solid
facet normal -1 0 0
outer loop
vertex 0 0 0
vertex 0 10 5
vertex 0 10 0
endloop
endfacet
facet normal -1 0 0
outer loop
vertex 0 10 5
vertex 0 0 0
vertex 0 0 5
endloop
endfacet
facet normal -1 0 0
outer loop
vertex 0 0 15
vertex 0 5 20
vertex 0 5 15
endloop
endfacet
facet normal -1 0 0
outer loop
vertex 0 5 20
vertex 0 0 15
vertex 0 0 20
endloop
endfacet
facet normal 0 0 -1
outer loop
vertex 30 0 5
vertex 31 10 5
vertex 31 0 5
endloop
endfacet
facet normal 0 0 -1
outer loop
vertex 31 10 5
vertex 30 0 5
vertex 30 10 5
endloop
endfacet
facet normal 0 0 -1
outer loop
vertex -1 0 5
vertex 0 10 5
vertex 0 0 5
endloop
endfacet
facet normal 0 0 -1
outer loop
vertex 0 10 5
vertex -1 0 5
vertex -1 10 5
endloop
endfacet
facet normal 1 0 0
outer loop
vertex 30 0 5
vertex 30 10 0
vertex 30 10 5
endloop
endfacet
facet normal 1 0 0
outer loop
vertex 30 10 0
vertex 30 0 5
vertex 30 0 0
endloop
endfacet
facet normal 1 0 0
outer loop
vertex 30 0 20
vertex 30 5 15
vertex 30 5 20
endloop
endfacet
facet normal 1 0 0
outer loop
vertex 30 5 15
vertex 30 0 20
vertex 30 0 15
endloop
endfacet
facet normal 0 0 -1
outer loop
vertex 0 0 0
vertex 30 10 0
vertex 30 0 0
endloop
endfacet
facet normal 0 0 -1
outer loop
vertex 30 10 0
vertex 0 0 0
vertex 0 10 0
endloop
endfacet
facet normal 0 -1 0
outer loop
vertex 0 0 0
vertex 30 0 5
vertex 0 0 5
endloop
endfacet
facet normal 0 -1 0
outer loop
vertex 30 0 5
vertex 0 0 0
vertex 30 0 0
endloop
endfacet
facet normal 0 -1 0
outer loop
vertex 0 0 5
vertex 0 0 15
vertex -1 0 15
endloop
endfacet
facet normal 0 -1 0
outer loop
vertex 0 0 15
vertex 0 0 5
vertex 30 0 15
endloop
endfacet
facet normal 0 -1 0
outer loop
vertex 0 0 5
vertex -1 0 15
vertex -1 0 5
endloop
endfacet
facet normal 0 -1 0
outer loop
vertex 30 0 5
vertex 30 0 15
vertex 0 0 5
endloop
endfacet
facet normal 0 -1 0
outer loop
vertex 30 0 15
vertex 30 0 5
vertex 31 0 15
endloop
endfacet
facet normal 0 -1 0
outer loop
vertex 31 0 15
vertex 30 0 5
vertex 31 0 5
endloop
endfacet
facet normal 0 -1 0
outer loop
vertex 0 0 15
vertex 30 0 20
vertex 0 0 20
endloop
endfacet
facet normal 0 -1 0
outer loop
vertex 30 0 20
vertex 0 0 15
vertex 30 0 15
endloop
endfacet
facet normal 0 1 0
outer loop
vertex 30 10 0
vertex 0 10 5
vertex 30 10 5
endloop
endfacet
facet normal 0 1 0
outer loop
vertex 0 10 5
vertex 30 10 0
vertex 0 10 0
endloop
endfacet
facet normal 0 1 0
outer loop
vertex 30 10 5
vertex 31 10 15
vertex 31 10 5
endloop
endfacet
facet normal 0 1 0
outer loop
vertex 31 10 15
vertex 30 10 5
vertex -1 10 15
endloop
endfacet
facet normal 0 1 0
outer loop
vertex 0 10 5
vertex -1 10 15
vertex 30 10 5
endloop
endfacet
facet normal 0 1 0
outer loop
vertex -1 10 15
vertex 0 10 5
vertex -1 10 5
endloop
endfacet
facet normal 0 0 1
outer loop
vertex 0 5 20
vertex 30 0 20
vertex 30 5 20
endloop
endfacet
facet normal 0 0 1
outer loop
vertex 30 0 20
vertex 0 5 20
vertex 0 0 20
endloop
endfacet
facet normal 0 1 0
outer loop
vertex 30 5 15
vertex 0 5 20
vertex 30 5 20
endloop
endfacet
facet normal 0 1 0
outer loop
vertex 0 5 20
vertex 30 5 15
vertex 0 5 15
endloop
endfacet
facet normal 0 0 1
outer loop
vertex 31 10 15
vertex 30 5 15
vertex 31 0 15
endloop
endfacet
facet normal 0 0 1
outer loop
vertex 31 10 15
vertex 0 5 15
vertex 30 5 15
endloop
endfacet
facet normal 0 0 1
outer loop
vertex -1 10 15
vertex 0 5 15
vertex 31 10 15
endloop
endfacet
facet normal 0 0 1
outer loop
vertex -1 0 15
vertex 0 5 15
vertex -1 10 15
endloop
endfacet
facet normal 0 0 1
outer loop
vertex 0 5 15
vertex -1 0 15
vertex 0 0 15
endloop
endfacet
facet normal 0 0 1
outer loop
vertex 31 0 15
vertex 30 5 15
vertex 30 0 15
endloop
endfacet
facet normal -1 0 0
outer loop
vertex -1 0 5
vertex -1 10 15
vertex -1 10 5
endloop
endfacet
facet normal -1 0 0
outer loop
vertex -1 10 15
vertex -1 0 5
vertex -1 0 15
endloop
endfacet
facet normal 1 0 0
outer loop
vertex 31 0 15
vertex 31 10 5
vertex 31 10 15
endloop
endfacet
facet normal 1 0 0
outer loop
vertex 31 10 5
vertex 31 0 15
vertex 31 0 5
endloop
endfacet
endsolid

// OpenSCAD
// Couch Base
cube([30, 10, 5]);

// Couch Back
translate([0, 0, 5])
cube([30, 5, 15]);

// Couch Seat Cushions
translate([1, 5, 5])
cube([14, 5, 10]);
translate([15, 5, 5])
cube([14, 5, 10]);

// Couch Arms
translate([-1, 0, 5])
cube([2, 10, 10]);
translate([29, 0, 5])
cube([2, 10, 10]);
